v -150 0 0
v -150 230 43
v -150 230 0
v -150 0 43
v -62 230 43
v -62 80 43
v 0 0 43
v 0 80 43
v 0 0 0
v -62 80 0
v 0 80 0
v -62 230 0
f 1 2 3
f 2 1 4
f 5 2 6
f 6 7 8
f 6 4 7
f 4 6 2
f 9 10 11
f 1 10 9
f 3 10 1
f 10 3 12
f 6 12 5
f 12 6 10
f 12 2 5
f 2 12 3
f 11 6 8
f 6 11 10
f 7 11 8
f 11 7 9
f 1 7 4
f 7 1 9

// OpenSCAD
gauc_vyska = 43;
gauc_A_delka = 150;
gauc_A_sirka = 88;
gauc_B_delka = 150;
gauc_B_sirka = 80;

module gauc() {
    color("gray")
    translate([gauc_B_delka-gauc_A_sirka, gauc_B_sirka, 0])
    cube([gauc_A_sirka, gauc_A_delka, gauc_vyska]);
    
    
    color("gray")
    cube([gauc_B_delka, gauc_B_sirka, gauc_vyska]);
}

mirror([1, 0, 0])
gauc();
